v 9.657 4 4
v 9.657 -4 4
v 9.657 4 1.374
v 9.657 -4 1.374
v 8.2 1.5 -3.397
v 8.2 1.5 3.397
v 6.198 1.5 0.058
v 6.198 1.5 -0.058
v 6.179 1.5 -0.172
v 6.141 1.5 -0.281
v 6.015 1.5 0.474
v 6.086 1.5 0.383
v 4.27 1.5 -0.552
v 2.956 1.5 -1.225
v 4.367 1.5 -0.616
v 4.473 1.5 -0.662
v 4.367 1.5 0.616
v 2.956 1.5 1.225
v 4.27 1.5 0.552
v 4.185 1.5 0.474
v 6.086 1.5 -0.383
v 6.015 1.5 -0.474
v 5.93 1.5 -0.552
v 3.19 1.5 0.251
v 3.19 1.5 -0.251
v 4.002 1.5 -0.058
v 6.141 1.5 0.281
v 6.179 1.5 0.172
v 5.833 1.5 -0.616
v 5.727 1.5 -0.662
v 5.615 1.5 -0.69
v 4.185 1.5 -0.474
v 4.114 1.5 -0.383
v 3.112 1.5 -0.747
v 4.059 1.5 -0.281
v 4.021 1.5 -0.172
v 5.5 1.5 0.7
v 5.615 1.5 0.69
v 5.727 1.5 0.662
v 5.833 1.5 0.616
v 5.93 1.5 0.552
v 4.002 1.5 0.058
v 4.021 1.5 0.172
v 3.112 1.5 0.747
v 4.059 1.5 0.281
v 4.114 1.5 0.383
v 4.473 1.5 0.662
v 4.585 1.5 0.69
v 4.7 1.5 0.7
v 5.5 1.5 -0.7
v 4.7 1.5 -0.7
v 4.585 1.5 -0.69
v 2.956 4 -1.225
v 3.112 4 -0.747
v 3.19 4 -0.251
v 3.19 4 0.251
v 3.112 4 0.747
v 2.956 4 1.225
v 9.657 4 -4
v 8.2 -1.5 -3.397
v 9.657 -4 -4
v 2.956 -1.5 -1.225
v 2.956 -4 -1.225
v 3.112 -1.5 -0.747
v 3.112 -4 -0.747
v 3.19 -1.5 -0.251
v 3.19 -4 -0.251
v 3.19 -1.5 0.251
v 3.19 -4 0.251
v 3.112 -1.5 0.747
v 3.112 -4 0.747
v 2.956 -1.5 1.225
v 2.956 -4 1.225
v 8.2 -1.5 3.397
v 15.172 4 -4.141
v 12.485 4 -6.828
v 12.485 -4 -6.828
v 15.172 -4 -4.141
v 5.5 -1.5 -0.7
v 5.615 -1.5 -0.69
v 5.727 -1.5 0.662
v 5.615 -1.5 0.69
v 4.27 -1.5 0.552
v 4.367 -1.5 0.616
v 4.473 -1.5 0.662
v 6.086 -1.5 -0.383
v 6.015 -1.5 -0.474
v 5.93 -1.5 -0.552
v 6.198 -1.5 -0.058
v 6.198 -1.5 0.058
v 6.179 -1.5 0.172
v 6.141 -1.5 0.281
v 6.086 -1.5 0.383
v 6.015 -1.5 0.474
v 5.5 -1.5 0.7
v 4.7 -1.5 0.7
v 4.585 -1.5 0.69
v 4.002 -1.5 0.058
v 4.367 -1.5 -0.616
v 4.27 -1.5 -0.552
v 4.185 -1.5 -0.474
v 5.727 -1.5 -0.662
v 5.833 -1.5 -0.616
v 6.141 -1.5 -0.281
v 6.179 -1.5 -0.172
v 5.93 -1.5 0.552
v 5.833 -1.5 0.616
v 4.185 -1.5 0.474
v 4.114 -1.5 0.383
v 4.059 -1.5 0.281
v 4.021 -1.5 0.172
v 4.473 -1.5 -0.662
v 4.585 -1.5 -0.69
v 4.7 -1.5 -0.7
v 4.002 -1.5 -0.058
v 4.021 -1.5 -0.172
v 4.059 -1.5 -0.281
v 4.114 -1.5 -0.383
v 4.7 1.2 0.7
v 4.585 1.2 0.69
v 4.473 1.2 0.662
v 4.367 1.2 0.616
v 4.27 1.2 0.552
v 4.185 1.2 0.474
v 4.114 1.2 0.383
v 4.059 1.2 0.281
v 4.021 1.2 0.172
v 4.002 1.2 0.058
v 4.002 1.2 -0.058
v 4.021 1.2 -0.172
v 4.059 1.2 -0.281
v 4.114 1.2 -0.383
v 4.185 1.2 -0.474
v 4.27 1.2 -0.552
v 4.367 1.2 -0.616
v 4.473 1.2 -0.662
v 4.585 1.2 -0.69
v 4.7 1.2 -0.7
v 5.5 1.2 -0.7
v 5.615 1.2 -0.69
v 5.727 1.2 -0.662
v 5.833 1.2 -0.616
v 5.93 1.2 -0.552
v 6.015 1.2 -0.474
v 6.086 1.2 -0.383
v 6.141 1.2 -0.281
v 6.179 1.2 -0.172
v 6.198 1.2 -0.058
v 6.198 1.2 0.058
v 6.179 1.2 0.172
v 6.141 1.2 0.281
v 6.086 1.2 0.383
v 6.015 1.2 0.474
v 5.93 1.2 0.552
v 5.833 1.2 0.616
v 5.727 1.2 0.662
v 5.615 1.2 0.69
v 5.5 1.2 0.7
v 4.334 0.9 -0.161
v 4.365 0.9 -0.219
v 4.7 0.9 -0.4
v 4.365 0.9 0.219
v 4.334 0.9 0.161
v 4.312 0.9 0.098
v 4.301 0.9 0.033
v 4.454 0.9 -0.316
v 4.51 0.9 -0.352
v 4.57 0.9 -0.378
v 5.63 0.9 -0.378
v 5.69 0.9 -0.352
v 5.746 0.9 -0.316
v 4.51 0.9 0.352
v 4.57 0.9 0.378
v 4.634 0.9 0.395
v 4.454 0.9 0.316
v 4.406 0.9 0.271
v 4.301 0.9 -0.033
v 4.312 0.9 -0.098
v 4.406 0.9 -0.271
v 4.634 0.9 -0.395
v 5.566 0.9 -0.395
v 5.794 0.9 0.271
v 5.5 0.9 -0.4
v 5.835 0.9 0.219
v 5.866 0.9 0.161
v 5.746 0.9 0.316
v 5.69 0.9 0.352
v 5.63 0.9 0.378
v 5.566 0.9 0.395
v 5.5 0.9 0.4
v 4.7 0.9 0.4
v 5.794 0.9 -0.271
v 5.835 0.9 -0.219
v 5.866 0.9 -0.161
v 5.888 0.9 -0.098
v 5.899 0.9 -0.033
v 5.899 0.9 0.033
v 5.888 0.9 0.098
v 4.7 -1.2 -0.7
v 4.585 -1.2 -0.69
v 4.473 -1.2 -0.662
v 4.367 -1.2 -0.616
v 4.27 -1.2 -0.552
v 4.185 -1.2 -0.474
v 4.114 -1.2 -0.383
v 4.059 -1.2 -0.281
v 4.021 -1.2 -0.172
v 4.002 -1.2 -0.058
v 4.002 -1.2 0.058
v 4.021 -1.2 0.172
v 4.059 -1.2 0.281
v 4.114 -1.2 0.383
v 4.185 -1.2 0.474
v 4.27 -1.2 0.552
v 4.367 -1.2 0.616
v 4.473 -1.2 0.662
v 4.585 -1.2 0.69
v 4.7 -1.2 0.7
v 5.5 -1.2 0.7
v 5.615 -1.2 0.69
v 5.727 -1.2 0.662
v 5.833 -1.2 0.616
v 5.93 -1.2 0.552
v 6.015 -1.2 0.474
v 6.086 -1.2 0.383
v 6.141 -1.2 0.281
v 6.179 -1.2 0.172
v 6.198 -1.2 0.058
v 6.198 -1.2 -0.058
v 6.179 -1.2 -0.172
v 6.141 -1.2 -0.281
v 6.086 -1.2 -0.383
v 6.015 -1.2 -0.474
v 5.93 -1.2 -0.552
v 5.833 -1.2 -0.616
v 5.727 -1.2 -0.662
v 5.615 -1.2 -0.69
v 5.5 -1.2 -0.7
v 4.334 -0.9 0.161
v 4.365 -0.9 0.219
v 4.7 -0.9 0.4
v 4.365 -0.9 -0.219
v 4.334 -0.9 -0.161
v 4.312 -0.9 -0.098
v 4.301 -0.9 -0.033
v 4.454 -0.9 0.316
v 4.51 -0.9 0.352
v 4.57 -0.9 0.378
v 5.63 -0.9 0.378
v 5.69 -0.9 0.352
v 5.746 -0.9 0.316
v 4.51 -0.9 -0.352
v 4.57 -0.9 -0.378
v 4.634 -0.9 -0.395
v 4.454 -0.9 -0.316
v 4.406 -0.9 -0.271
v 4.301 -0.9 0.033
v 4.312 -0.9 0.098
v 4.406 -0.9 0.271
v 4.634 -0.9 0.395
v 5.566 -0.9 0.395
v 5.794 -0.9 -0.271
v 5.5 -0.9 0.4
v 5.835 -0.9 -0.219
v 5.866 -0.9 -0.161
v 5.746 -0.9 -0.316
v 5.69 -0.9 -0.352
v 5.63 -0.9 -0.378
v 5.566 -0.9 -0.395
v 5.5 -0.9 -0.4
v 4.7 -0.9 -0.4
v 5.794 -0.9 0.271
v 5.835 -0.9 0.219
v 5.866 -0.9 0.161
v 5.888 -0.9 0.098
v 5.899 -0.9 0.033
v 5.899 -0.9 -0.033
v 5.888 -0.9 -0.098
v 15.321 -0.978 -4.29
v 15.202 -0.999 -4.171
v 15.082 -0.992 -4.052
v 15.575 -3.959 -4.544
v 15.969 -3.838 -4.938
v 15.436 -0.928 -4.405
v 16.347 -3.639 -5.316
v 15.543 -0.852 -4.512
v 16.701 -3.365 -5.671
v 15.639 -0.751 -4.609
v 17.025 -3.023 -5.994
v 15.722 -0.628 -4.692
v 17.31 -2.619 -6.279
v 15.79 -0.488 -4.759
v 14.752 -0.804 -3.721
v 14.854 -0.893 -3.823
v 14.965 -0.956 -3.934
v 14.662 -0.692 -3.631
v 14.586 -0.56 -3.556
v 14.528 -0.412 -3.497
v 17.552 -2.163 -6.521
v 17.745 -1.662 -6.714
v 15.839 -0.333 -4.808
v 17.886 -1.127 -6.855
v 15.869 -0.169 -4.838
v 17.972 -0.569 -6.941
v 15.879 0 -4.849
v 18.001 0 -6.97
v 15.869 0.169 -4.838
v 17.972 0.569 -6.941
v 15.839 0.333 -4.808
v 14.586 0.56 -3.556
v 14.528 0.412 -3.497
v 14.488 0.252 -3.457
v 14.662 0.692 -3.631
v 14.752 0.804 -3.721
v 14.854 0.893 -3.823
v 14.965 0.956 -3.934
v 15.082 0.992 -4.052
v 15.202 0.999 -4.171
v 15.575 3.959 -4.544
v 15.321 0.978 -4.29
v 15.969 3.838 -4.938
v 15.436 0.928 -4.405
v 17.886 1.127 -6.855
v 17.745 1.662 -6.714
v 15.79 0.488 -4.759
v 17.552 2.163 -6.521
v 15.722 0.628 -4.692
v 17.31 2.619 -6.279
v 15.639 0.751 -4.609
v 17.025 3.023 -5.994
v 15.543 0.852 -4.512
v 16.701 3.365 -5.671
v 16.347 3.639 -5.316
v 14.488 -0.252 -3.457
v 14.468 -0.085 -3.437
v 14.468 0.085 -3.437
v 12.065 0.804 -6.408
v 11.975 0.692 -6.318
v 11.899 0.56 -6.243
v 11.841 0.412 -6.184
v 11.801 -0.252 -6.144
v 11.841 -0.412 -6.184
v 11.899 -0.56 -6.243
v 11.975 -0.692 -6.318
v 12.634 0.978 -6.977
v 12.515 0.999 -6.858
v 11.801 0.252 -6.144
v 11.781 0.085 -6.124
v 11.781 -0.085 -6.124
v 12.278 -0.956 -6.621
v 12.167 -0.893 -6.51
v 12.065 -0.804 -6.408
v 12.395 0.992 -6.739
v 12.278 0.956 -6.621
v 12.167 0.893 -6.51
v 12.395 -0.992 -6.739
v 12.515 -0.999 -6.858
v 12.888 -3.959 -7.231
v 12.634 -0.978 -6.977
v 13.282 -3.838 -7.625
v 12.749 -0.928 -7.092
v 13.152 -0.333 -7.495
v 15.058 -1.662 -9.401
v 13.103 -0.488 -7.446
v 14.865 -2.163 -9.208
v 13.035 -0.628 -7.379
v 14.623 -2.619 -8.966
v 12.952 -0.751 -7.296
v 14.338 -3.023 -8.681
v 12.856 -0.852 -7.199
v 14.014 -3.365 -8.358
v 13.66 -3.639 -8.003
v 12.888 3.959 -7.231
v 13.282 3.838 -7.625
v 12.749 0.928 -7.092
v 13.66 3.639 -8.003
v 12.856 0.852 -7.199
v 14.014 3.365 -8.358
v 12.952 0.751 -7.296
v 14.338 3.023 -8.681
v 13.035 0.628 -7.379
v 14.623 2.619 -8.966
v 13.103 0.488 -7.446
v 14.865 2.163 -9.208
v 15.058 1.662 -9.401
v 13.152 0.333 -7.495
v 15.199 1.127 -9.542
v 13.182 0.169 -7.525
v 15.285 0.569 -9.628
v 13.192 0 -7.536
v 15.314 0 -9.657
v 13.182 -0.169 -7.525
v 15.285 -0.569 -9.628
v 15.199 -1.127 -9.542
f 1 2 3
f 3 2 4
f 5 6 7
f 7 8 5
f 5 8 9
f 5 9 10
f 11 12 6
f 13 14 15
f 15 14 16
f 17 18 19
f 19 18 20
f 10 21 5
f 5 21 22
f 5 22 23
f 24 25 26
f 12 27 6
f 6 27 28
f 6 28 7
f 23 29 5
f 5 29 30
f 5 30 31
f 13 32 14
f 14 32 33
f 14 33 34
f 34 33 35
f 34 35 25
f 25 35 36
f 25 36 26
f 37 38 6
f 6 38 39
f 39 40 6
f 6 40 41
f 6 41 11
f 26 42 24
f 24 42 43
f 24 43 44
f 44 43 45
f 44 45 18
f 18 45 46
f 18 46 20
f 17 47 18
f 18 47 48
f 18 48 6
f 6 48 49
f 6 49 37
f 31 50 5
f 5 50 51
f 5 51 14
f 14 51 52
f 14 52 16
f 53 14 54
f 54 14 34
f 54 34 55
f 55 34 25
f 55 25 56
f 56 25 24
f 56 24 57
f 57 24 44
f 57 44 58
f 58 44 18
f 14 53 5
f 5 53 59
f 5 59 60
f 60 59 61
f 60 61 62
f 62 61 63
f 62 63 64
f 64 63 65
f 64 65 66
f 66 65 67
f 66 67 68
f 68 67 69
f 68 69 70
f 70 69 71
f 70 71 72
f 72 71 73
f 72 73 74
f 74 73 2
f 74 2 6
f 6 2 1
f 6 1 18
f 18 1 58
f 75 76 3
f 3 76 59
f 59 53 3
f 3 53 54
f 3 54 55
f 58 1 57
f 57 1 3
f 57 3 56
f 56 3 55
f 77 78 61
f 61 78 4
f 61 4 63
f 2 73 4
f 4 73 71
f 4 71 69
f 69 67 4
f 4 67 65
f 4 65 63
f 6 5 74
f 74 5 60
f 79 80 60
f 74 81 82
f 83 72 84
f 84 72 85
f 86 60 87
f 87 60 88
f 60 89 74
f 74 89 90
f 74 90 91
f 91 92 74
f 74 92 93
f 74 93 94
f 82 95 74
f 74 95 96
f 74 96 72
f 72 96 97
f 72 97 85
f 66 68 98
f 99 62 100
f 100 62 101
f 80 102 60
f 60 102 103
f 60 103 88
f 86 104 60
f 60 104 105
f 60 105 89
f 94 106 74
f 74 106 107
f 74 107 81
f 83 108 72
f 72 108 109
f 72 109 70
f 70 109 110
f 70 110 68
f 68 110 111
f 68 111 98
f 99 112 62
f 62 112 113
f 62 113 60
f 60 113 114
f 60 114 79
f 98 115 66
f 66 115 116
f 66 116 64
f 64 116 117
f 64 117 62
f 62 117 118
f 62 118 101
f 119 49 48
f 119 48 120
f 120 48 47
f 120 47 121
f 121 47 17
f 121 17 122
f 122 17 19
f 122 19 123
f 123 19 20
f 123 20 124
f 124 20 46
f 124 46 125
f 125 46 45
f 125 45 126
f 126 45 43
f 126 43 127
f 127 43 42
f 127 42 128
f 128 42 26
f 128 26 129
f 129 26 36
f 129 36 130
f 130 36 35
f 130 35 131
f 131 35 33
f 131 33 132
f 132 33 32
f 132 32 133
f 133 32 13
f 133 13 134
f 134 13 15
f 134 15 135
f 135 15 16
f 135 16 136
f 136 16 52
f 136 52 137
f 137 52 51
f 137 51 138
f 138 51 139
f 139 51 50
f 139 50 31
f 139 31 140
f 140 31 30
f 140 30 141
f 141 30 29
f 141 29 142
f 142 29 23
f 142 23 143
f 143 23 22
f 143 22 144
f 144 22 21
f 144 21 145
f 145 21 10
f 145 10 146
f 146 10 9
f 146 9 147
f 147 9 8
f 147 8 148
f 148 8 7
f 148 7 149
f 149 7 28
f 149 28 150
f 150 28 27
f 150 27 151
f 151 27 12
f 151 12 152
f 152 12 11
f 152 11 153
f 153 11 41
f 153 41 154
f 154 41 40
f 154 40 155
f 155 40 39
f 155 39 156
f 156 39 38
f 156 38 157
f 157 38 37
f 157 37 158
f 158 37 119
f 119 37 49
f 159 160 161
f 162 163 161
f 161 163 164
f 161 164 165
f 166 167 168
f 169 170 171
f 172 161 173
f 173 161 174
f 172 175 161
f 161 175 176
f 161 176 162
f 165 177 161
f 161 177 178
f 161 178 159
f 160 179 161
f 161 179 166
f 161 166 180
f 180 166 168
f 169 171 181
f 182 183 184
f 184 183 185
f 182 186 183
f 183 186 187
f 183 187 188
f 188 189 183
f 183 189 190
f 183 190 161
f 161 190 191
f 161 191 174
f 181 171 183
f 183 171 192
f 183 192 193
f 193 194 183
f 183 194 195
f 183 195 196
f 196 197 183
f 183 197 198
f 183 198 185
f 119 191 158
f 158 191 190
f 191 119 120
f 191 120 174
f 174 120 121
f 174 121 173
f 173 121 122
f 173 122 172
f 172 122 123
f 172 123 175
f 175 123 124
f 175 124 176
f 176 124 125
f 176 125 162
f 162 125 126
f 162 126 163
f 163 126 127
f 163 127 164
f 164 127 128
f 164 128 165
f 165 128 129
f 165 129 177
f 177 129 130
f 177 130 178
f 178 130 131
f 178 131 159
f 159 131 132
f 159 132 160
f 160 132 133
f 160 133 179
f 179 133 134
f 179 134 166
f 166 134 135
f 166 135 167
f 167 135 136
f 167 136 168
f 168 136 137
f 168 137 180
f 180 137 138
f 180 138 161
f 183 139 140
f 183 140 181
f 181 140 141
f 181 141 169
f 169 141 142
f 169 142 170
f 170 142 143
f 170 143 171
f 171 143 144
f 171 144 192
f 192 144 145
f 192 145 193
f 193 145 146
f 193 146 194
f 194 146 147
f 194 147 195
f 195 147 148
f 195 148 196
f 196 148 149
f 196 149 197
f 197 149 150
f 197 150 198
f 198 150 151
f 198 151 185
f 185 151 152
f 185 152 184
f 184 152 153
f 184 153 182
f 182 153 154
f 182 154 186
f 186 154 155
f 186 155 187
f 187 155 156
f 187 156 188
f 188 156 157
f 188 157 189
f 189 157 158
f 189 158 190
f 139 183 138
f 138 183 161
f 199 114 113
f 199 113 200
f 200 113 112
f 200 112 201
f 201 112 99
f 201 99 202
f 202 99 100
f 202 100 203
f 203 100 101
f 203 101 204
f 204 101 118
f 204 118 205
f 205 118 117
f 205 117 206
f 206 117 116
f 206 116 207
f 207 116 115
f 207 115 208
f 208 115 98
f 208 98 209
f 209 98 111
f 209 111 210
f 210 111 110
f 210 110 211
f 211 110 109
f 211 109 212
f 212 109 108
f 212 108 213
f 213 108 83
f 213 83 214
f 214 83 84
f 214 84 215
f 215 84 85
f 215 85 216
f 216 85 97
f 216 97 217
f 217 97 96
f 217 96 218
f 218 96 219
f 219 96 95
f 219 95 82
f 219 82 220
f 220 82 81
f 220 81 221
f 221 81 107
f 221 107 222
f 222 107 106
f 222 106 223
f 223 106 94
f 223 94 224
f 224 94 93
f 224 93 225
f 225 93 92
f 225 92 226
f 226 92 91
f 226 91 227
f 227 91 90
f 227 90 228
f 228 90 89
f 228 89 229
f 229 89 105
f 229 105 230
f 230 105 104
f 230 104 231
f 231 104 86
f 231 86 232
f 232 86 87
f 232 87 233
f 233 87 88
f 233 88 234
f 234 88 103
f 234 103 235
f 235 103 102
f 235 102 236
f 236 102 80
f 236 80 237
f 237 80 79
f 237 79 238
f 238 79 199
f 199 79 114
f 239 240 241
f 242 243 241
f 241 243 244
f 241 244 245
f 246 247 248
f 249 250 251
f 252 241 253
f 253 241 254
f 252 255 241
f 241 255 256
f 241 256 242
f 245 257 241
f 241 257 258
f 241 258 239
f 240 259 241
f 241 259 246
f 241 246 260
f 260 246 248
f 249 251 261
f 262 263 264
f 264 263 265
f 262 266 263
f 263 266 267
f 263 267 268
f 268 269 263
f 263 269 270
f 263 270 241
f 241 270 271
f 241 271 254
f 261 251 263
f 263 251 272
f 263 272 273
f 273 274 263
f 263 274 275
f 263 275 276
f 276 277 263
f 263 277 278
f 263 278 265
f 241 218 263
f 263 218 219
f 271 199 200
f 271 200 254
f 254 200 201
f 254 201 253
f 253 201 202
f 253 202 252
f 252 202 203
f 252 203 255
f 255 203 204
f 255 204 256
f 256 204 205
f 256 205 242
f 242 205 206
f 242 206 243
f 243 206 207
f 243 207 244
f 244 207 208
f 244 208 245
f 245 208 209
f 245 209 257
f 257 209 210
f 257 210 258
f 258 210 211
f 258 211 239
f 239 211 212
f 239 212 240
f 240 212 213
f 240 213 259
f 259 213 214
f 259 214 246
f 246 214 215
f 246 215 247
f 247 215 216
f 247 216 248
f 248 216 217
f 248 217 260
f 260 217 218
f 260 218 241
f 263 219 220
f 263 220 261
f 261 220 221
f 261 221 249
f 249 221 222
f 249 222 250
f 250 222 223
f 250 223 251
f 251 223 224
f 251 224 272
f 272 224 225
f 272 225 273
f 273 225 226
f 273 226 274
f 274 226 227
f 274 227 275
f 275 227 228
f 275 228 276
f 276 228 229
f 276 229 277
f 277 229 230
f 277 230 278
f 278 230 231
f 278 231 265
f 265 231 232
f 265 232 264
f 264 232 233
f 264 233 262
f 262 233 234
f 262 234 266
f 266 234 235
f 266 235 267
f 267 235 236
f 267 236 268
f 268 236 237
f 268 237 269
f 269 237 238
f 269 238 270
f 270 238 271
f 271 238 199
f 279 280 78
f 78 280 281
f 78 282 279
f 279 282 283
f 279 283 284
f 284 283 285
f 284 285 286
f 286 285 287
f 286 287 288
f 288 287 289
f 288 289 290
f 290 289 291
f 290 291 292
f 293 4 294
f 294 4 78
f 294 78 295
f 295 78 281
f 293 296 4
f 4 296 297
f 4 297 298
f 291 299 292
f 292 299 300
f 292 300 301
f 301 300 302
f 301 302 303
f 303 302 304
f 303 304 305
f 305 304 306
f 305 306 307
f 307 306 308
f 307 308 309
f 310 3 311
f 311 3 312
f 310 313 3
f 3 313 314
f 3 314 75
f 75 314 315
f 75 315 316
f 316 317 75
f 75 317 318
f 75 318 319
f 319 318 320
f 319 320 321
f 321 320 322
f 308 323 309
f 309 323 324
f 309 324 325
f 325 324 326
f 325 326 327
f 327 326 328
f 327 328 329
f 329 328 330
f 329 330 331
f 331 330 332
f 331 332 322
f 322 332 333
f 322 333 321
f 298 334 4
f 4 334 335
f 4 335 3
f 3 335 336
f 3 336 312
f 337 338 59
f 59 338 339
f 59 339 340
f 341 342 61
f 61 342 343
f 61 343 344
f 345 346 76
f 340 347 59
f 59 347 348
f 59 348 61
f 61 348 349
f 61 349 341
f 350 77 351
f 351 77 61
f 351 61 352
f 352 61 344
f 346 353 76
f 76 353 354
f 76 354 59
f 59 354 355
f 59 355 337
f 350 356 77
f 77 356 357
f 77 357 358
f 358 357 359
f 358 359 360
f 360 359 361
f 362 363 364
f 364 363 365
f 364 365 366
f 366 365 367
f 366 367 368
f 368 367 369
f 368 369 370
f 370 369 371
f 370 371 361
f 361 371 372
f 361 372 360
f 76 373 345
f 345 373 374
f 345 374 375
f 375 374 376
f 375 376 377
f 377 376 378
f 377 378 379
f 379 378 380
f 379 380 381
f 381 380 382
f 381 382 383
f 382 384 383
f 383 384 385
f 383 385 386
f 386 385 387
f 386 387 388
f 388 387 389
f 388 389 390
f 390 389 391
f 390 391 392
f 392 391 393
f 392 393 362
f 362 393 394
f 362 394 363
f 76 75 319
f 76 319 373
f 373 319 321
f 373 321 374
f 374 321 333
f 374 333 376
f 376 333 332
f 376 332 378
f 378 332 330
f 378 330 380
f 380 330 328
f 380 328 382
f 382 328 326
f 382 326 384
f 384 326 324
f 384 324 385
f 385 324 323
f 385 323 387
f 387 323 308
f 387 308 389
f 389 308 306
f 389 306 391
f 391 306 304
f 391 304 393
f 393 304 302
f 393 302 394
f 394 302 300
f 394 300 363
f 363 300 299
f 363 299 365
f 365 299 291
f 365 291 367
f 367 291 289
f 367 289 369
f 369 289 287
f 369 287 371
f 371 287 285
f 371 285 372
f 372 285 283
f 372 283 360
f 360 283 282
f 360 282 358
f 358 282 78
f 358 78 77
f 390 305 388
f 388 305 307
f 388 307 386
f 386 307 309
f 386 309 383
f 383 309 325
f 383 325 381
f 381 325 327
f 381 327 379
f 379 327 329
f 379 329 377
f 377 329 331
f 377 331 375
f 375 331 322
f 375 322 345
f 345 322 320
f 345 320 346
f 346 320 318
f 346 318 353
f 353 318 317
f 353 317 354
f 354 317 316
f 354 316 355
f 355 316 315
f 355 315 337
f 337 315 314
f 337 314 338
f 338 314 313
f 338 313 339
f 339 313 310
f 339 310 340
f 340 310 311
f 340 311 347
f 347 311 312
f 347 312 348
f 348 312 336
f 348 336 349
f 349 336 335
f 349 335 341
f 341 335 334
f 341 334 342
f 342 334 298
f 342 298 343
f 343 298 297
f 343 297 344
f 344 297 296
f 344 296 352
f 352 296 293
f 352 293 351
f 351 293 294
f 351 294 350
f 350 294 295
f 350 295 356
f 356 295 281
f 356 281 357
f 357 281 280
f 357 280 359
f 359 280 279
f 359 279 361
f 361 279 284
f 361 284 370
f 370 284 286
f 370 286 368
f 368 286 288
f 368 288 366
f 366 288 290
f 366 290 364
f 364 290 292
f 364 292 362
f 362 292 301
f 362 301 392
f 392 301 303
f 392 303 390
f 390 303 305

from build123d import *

# Parameters (mm, degrees)
AUFSATZ_LINEAR_AUSTRAGEN1_DEPTH             = 4
SCHNITT_LINEAR_AUSTRAGEN1_DEPTH             = 12.191730608
SCHNITT_LINEAR_AUSTRAGEN1_DEPTH_BACK        = 12.191730608
SKIZZE2_W                                   = 8.2
SKIZZE2_H                                   = 3
AUFSATZ_LINEAR_AUSTRAGEN2_DEPTH             = 0.6
FASE1_SIZE                                  = 0.3
FASE1_OF_SPIEGELN1_SIZE                     = 0.3
AUFSATZ_LINEAR_AUSTRAGEN5_REACH             = 13.192
AUFSATZ_LINEAR_AUSTRAGEN5_DIRECTION_2_REACH = 13.192
VERRUNDUNG2_R                               = 4
SKIZZE15_R                                  = 1
SCHNITT_LINEAR_AUSTRAGEN2_DEPTH             = 21.051946243


with BuildPart() as part:
    # Skizze1 → Aufsatz-Linear austragen1 (new, symmetric)
    with BuildSketch(Plane(origin=(0, 0, 0), x_dir=(1, 0, 0), z_dir=(0, 1, 0))):
        with BuildLine():
            Line((2.956414504, 1.224586984), (9.656854249, 4))
            Line((9.656854249, 4), (9.656854249, -4))
            Line((9.656854249, -4), (2.956414504, -1.224586984))
            ThreePointArc((2.956414504, -1.224586984), (3.2, 0), (2.956414504, 1.224586984))
        make_face()
    extrude(amount=AUFSATZ_LINEAR_AUSTRAGEN1_DEPTH, both=True)

    # Skizze2 → Schnitt-Linear austragen1 (cut, two sides: drawn at the far end of the back side and taken through both)
    with BuildSketch(Plane.XY.offset(-SCHNITT_LINEAR_AUSTRAGEN1_DEPTH_BACK)):
        with Locations((4.1, 0)):
            Rectangle(SKIZZE2_W, SKIZZE2_H)
    extrude(amount=SCHNITT_LINEAR_AUSTRAGEN1_DEPTH + SCHNITT_LINEAR_AUSTRAGEN1_DEPTH_BACK, mode=Mode.SUBTRACT)

    # Skizze7 → Aufsatz-Linear austragen2 (add)
    with BuildSketch(Plane.XZ.offset(-1.5)):
        with BuildLine():
            Line((4.7, 0.7), (5.5, 0.7))
            ThreePointArc((5.5, 0.7), (6.2, 0), (5.5, -0.7))
            Line((5.5, -0.7), (4.7, -0.7))
            ThreePointArc((4.7, -0.7), (4, 0), (4.7, 0.7))
        make_face()
    aufsatz_linear_austragen2 = extrude(amount=AUFSATZ_LINEAR_AUSTRAGEN2_DEPTH)

    # Fase1
    fase1_edges = [part.edges().sort_by_distance(p)[0] for p in [
        (4, 0.9, 0),
        (5.1, 0.9, -0.7),
        (6.2, 0.9, 0),
        (5.1, 0.9, 0.7),
    ]]
    chamfer(fase1_edges, length=FASE1_SIZE)

    # Spiegeln1: Aufsatz-Linear austragen2 across plane
    add(aufsatz_linear_austragen2.mirror(Plane.ZX))

    # Fase1 of Spiegeln1
    fase1_of_spiegeln1_edges = [part.edges().sort_by_distance(p)[0] for p in [
        (4, -0.9, 0),
        (5.1, -0.9, -0.7),
        (6.2, -0.9, 0),
        (5.1, -0.9, 0.7),
    ]]
    chamfer(fase1_of_spiegeln1_edges, length=FASE1_OF_SPIEGELN1_SIZE)

    # Aufsatz-Linear austragen5: up to this face of the body (flat: up to its plane)
    aufsatz_linear_austragen5_end = Plane(part.part.faces().sort_by_distance((6.944416323, 4, 0))[0])
    # Skizze13 → Aufsatz-Linear austragen5 (add, up to the picked face)
    with BuildSketch(Plane(origin=(0, 0, 0), x_dir=(1, 0, 0), z_dir=(0, 1, 0)), mode=Mode.PRIVATE) as aufsatz_linear_austragen5_sk1:
        Polygon((9.656854249, 4), (15.313708499, 9.656854249), (18.000714267, 6.969848481), (9.656854249, -1.374011537), align=None)
    aufsatz_linear_austragen5_tool1 = split(extrude(aufsatz_linear_austragen5_sk1.sketch, amount=AUFSATZ_LINEAR_AUSTRAGEN5_REACH, mode=Mode.PRIVATE), bisect_by=aufsatz_linear_austragen5_end, keep=Keep.BOTH, mode=Mode.PRIVATE)
    add(aufsatz_linear_austragen5_tool1.solids().sort_by(Axis((13.200007, 0, -4.684251), (0, 1, 0)))[0])

    # Aufsatz-Linear austragen5 direction 2: up to this face of the body (flat: up to its plane)
    aufsatz_linear_austragen5_direction_2_end = Plane(part.part.faces().sort_by_distance((6.944416323, -4, 0))[0])
    # Skizze13 → Aufsatz-Linear austragen5 direction 2 (add, up to the picked face)
    with BuildSketch(Plane(origin=(0, 0, 0), x_dir=(1, 0, 0), z_dir=(0, 1, 0)), mode=Mode.PRIVATE) as aufsatz_linear_austragen5_direction_2_sk1:
        Polygon((9.656854249, 4), (15.313708499, 9.656854249), (18.000714267, 6.969848481), (9.656854249, -1.374011537), align=None)
    aufsatz_linear_austragen5_direction_2_tool1 = split(extrude(aufsatz_linear_austragen5_direction_2_sk1.sketch, amount=-AUFSATZ_LINEAR_AUSTRAGEN5_DIRECTION_2_REACH, mode=Mode.PRIVATE), bisect_by=aufsatz_linear_austragen5_direction_2_end, keep=Keep.BOTH, mode=Mode.PRIVATE)
    add(aufsatz_linear_austragen5_direction_2_tool1.solids().sort_by(Axis((13.200007, 0, -4.684251), (0, -1, 0)))[0])

    # Verrundung2
    verrundung2_edges = [part.edges().sort_by_distance(p)[0] for p in [
        (16.657211383, 4, -8.313351365),
        (16.657211383, -4, -8.313351365),
    ]]
    fillet(verrundung2_edges, radius=VERRUNDUNG2_R - 0.0001)  # a hair under: the kernel refuses the full size

    # Skizze15 → Schnitt-Linear austragen2 (cut, through all)
    with BuildSketch(Plane(origin=(5.515432893, 0, 5.515432893), x_dir=(0.707106781186546, 0, -0.707106781186549), z_dir=(0.707106781186549, 0, 0.707106781186546))):
        with Locations((13.656854249, 0)):
            Circle(SKIZZE15_R)
    extrude(amount=-SCHNITT_LINEAR_AUSTRAGEN2_DEPTH, mode=Mode.SUBTRACT)


solid = part.part
